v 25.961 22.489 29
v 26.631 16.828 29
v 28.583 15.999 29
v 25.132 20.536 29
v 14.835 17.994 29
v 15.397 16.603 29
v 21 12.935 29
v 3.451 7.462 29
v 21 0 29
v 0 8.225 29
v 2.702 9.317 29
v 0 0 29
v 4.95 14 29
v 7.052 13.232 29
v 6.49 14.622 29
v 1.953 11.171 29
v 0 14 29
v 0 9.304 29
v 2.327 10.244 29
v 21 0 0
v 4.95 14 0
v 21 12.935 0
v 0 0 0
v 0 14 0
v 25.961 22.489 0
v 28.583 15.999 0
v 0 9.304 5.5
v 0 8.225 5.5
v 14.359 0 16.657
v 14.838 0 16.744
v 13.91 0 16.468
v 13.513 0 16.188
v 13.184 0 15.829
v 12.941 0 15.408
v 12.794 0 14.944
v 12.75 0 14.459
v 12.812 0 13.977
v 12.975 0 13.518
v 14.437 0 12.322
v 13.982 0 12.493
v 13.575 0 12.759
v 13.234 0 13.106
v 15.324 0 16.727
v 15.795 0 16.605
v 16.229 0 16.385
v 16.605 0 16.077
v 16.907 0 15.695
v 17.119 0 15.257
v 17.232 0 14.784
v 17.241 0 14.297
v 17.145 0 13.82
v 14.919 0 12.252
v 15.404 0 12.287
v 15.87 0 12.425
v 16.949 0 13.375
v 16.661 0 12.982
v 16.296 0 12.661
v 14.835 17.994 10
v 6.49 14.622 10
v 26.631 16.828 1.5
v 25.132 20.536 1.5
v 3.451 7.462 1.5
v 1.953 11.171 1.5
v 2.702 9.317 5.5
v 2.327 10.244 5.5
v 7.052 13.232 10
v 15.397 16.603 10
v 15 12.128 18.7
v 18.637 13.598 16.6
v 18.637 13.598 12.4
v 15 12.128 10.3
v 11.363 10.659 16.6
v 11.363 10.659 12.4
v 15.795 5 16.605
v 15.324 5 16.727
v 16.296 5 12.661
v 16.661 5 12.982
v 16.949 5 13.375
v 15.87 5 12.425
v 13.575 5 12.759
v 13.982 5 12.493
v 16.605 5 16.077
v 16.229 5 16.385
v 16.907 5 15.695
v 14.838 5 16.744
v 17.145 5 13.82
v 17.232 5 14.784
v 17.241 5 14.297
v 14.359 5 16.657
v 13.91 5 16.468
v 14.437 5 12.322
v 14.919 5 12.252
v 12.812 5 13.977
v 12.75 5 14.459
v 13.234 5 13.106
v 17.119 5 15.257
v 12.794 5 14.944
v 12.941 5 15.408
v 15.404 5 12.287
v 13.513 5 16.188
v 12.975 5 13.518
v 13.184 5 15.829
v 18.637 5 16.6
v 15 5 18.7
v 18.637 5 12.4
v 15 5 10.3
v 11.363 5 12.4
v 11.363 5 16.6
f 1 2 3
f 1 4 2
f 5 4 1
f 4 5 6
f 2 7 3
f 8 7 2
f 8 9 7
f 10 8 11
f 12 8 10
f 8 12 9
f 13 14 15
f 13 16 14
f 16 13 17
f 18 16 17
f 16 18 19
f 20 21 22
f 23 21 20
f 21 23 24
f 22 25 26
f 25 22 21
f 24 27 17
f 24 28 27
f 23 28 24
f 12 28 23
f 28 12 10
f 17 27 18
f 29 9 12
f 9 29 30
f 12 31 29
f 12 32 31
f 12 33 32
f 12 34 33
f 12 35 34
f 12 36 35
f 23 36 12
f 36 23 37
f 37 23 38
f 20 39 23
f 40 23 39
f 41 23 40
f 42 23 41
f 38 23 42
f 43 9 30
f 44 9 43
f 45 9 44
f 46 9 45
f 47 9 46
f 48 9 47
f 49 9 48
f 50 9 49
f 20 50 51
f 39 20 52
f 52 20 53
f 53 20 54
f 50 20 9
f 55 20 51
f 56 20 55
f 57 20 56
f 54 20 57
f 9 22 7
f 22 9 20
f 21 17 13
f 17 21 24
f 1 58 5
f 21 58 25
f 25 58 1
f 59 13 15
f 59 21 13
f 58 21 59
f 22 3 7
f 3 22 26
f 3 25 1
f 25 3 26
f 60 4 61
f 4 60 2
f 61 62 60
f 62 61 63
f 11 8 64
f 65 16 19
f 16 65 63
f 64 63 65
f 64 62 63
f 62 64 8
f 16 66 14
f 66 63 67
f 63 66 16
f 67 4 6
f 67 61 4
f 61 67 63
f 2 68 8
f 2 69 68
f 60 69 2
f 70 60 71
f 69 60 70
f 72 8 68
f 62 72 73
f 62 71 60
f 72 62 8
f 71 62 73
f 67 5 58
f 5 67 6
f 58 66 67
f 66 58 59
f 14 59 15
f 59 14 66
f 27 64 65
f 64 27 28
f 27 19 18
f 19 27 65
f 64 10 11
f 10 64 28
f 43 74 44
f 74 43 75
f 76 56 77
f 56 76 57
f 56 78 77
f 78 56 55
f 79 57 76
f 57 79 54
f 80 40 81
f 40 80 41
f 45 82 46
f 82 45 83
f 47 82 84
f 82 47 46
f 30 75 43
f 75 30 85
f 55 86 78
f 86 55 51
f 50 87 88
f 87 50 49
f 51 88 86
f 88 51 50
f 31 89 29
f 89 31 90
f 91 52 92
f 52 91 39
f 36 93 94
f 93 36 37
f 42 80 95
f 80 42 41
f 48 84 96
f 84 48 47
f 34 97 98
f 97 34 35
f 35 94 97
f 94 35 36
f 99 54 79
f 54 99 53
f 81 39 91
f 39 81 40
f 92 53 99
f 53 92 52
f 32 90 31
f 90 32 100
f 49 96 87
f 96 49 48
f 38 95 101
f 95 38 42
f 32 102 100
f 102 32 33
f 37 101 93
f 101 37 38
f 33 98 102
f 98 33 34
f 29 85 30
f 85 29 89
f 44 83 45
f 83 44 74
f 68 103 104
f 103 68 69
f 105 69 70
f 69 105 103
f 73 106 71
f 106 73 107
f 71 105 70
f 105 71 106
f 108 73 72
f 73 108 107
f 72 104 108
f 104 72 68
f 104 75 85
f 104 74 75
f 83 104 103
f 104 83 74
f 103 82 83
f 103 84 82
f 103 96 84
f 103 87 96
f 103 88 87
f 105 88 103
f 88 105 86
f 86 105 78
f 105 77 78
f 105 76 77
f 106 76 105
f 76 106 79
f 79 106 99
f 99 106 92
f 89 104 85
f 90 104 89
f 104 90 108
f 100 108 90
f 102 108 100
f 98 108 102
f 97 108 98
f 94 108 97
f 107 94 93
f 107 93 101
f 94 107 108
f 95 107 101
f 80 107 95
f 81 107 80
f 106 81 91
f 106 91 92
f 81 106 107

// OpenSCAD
// Holder for the rpi camera on the m2.
//
// Copyright (C) 2020  Kevin O'Connor <kevin@koconnor.net>
//
// This file may be distributed under the terms of the GNU GPLv3 license.

// Mounting screw hole is 13mm down from steel frame, 15mm in from front edge.
// Protruding screw is 5mm down from top of frame, 5-10mm in from side.

// dimensions: https://www.raspberrypi.org/documentation/hardware/camera/
// https://www.raspberrypi-spy.co.uk/2013/05/pi-camera-module-mechanical-dimensions/

camera_width = 25;
camera_length = 24;
camera_height = 3;
camera_angle = 22;
camera_lens = 9;
camera_lens_x = 5;
camera_lens_z = 8;
sleeve_thick = 1.5;
printer_screw_dia = 4.5;
printer_hex_dia = 8.4;
slack = 1;
CUT = 0.01;
$fs = .5;

//
// Camera mount
//

module camera_mount() {
    module pcb_cutout() {
        offset = sleeve_thick;
        width = camera_width + 99;
        height = camera_height + slack;
        length = camera_length + slack;
        translate([offset, offset, offset])
            cube(size=[length, height, width]);
    }
    module lens_cutout() {
        lens_x = camera_lens_x + sleeve_thick + slack/2;
        lens_z = camera_lens_z + sleeve_thick + slack/2;
        translate([lens_x, sleeve_height - sleeve_thick - CUT, lens_z])
            cube(size=[camera_lens, sleeve_thick + 2*CUT, 99]);
    }
    module cable_cutout() {
        cable_thick = 1;
        cable_y_offset = 3.5;
        cable_z_offset = sleeve_thick + (camera_width - 16 - slack) / 2;
        translate([-99, cable_y_offset, cable_z_offset])
            cube(size=[sleeve_thick+99+CUT, cable_thick, 99]);
    }
    sleeve_width = camera_width + slack + 2 * sleeve_thick;
    sleeve_length = camera_length + slack + 2 * sleeve_thick;
    sleeve_height = camera_height + slack + 2 * sleeve_thick;
    module camera_holder() {
        cube(size=[sleeve_length, sleeve_height, sleeve_width]);
    }
    base_width = 12;
    base_height = 10;
    screw_holder_width = 14;
    screw_holder_height = 21;
    screw_height = 15;
    screw_depth = 5;
    module frame() {
        cube(size=[base_height, base_width, sleeve_width]);
        cube(size=[screw_holder_height, screw_holder_width, sleeve_width]);
        translate([0, base_width, 0])
            rotate([0, 0, camera_angle])
                translate([0, -sleeve_height, 0])
                    camera_holder();
    }
    module screw() {
        rotate([0, 0, 30]) {
            // Screw shaft
            translate([0, 0, -CUT])
                cylinder(h=screw_holder_width, d=printer_screw_dia);
            // Hex nut
            height1 = screw_holder_width-screw_depth;
            translate([0, 0, screw_depth])
                cylinder(h=height1+CUT, d=printer_hex_dia, $fn=6);
        }
    }

    difference() {
        frame();
        // Remove space for camera board
        translate([0, base_width, 0])
            rotate([0, 0, camera_angle])
                translate([0, -sleeve_height, 0]) {
                    pcb_cutout();
                    lens_cutout();
                    cable_cutout();
                }
        // Remove space for mounting screw
        translate([screw_height, 0, sleeve_width/2])
            rotate([270, 0, 0])
                screw();
    }
}

//
// Object selection
//

camera_mount();
